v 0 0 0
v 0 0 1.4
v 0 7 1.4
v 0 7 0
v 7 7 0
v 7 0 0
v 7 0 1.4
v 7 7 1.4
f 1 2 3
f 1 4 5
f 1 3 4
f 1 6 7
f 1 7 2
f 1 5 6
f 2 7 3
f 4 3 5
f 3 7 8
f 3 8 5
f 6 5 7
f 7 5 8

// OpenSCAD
/* Warning, this is a very basic generator with a lot of approximation 
input data : [LQFP, PPX, 7x7x1.4mm, 32, , B, C04-00045B]
generated by com.zoubworld.electronics.cad.model3d.Basic
Date : Sun Feb 15 10:50:48 CET 2026
*/

//body
color("black")
translate([0,0,0])
cube([7.0,7.0,1.4], center=false);
